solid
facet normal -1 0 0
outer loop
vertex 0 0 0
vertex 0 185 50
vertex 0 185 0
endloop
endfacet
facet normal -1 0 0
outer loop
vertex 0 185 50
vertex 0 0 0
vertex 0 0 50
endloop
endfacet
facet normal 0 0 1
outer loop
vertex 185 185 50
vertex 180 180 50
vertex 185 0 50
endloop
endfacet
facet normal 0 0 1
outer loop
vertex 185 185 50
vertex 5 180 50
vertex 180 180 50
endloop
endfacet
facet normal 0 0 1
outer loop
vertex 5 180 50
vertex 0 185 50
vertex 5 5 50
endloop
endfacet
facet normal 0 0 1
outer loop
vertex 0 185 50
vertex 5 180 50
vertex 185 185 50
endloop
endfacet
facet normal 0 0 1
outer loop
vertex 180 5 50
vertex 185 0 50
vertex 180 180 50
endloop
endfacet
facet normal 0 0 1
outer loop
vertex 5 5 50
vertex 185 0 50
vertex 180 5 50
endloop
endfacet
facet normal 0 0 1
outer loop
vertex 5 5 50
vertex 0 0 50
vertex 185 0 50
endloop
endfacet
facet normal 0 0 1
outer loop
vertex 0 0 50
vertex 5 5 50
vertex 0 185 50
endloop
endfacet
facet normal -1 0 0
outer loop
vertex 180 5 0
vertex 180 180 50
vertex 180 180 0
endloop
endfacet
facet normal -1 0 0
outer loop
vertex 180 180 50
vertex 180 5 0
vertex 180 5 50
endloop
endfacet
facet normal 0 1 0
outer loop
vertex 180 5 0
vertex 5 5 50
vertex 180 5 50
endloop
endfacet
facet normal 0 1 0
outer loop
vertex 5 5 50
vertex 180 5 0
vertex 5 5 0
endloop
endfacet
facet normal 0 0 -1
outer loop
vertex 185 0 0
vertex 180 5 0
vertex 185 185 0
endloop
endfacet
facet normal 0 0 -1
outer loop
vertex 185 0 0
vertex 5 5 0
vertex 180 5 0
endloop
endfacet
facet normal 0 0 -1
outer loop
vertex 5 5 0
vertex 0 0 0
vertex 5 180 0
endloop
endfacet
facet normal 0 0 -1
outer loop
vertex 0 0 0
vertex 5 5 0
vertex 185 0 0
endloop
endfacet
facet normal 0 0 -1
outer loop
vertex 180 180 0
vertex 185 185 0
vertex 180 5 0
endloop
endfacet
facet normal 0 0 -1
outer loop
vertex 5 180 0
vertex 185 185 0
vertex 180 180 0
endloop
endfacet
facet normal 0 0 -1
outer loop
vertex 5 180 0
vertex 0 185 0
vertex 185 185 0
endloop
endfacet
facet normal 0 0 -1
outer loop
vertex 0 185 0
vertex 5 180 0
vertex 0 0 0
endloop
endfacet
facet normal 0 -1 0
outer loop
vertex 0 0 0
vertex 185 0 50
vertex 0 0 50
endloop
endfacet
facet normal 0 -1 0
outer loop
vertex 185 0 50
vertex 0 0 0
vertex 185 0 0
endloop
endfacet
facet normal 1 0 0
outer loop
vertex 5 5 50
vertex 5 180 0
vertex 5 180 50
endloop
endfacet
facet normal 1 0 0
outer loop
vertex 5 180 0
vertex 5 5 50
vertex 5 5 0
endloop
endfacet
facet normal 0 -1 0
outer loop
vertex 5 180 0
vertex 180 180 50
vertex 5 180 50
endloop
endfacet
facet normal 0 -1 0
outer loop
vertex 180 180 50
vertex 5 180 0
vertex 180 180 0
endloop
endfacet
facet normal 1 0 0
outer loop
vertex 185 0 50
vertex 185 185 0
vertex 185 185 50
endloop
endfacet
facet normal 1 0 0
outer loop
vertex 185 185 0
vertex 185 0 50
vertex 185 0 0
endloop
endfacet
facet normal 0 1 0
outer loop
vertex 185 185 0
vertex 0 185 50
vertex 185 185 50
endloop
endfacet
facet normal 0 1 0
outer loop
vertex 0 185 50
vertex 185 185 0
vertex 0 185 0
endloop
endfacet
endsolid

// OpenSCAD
cube([180,5,50]);
cube([5,180,50]);

translate([180,0,0]){
    cube([5,180,50]);
}

translate([0,180,0]){
    cube([185,5,50]);
}
